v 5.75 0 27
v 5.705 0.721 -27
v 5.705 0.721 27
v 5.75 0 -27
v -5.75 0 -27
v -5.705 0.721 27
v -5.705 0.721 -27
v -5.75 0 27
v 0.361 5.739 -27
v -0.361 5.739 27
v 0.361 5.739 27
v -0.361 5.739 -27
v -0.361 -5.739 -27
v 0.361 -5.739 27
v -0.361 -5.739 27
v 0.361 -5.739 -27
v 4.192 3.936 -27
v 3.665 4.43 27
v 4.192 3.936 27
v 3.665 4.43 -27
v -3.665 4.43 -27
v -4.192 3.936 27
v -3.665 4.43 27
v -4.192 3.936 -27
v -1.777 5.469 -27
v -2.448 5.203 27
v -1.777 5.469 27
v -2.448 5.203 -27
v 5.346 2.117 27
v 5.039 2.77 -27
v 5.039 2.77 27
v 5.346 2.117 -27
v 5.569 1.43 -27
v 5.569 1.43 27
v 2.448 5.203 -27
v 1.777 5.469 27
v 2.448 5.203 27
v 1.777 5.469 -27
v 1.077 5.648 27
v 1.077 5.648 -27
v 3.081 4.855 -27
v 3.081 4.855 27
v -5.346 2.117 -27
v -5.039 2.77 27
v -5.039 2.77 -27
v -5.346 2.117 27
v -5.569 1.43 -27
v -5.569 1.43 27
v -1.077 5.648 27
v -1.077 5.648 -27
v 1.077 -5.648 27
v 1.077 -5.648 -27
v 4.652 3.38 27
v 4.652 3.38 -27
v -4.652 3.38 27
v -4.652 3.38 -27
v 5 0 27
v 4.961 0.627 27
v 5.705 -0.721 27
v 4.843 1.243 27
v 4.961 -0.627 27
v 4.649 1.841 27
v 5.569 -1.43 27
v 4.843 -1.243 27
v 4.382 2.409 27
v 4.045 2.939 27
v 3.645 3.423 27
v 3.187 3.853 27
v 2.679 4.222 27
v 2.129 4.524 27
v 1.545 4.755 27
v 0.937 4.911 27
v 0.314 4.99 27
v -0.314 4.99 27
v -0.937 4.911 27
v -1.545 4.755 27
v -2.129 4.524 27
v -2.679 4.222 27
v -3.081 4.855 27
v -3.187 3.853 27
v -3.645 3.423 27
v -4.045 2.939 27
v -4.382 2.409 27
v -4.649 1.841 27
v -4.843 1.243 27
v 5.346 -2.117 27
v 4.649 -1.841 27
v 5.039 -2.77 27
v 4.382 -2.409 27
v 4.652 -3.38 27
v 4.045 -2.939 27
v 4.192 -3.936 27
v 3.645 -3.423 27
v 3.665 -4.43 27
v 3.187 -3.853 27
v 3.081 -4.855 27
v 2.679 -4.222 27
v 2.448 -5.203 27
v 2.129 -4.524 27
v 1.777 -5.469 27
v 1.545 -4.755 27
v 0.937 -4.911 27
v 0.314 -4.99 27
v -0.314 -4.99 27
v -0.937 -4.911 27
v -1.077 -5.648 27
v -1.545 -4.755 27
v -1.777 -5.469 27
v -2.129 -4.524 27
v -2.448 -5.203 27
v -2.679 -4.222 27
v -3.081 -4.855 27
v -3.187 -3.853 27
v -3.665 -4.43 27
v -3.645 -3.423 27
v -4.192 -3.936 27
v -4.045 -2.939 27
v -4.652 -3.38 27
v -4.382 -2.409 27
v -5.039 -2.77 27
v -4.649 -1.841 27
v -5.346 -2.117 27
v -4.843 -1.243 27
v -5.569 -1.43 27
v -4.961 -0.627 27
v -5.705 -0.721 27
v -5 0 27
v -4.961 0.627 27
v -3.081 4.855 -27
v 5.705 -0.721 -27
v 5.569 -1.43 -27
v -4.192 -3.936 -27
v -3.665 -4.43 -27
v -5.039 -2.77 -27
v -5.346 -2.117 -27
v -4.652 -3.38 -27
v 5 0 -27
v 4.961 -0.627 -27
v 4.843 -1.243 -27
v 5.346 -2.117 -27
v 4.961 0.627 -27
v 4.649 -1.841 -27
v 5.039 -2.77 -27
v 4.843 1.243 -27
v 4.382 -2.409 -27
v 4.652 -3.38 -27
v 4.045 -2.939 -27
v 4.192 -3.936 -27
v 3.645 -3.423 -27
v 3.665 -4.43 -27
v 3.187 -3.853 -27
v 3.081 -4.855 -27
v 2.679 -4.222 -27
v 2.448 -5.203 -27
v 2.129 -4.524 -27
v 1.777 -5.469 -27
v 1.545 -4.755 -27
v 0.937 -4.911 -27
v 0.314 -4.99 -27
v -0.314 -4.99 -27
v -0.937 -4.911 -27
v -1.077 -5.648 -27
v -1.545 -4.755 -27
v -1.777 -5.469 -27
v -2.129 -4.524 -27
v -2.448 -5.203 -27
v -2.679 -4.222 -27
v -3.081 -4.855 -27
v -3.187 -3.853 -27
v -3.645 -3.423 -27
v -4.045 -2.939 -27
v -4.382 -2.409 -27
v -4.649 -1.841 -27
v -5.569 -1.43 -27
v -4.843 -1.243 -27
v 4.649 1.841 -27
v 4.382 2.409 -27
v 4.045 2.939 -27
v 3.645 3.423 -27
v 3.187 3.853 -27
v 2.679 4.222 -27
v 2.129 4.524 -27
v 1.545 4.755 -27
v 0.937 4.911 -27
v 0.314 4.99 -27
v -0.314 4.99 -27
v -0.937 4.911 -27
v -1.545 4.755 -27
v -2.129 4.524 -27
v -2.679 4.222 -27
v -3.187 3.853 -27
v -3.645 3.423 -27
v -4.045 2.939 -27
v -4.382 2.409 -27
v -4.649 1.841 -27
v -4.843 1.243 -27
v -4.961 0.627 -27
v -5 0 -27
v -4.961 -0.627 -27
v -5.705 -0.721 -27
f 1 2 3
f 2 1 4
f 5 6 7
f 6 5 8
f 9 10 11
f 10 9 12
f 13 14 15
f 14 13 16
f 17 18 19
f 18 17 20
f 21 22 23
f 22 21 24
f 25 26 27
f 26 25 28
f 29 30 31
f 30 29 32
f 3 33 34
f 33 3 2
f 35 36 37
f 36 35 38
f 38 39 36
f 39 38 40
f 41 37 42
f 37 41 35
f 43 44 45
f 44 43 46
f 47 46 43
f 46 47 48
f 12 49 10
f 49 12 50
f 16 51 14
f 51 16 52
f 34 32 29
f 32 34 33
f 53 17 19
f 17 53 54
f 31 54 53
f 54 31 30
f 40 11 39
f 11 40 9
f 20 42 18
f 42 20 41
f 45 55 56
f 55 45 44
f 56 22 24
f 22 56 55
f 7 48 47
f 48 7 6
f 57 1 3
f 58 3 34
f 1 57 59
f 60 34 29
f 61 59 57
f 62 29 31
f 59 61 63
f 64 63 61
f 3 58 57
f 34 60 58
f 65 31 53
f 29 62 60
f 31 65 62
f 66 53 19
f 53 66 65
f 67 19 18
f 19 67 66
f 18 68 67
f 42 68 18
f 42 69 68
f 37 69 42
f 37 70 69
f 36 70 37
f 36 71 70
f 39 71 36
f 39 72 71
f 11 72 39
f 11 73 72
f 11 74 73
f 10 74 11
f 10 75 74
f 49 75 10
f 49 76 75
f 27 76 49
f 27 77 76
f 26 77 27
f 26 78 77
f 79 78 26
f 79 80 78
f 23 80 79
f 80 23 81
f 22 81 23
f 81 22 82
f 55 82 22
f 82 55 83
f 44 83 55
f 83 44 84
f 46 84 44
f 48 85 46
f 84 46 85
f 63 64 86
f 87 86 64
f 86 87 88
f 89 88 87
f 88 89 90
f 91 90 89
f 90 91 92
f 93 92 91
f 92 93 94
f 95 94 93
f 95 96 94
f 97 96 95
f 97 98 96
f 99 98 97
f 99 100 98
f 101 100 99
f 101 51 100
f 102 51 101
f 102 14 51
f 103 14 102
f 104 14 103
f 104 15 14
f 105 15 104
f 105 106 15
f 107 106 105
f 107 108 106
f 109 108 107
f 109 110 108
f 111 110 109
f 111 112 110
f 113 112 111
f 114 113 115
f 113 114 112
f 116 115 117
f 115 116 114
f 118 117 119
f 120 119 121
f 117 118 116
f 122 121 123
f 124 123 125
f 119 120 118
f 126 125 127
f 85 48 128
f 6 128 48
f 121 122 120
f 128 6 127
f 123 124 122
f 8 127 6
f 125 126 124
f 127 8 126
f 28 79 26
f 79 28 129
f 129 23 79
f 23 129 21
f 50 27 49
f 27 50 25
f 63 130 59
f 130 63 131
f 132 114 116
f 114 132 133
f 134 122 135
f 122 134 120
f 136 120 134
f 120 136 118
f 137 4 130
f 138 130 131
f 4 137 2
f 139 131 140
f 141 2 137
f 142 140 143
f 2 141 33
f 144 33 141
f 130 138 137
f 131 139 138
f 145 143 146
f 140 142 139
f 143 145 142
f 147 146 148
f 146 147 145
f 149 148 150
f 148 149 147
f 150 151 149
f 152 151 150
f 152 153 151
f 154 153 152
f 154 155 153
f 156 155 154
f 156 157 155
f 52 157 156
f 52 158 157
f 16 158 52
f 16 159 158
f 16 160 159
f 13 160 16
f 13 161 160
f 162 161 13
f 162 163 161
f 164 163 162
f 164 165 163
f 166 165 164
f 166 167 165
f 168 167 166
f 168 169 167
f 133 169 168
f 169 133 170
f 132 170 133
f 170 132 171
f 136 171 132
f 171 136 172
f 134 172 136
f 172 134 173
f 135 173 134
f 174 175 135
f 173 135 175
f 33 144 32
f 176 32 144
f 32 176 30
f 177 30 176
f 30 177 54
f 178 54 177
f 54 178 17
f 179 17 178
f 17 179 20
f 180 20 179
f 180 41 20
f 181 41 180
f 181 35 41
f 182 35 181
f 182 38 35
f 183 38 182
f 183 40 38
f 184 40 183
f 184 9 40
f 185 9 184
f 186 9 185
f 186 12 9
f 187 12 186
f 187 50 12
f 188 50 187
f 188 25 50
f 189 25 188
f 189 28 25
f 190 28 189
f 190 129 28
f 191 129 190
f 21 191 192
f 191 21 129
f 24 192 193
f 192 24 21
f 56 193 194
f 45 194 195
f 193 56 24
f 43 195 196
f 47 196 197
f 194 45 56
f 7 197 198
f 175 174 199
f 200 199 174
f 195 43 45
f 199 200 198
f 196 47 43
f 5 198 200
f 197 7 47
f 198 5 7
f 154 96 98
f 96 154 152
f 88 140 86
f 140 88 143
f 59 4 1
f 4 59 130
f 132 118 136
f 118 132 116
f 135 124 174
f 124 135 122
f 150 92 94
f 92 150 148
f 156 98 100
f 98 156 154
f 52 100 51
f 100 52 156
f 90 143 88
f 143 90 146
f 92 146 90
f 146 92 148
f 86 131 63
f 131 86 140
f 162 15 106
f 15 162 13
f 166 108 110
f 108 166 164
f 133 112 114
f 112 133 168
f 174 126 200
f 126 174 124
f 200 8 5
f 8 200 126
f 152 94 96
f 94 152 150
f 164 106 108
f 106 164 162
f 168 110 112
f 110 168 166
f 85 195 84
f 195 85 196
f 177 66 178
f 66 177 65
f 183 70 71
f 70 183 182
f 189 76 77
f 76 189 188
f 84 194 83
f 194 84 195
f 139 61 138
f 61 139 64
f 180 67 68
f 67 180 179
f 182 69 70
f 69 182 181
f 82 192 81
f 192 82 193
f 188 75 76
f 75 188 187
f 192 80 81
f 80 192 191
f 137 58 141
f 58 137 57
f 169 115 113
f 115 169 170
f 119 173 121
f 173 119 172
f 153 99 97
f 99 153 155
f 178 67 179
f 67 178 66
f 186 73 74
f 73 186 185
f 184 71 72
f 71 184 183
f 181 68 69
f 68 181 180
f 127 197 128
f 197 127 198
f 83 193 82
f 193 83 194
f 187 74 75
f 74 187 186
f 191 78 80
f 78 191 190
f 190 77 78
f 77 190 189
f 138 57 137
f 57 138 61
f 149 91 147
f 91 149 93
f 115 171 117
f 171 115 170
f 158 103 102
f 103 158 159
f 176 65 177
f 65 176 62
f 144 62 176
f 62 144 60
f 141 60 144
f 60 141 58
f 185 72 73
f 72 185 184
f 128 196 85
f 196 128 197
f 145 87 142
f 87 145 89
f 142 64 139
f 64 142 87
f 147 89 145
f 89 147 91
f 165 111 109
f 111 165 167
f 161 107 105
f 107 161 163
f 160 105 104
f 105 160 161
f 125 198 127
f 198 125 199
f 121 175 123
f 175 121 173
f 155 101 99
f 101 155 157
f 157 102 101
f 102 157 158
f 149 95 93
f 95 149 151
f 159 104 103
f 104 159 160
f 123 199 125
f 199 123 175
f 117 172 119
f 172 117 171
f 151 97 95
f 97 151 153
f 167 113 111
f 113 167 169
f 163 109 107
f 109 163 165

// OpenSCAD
$fn = 50;


difference() {
	union() {
		translate(v = [0, 0, -27.0000000000]) {
			cylinder(h = 54, r = 5.7500000000);
		}
	}
	union() {
		translate(v = [0, 0, -100.0000000000]) {
			cylinder(h = 200, r = 5.0000000000);
		}
	}
}
